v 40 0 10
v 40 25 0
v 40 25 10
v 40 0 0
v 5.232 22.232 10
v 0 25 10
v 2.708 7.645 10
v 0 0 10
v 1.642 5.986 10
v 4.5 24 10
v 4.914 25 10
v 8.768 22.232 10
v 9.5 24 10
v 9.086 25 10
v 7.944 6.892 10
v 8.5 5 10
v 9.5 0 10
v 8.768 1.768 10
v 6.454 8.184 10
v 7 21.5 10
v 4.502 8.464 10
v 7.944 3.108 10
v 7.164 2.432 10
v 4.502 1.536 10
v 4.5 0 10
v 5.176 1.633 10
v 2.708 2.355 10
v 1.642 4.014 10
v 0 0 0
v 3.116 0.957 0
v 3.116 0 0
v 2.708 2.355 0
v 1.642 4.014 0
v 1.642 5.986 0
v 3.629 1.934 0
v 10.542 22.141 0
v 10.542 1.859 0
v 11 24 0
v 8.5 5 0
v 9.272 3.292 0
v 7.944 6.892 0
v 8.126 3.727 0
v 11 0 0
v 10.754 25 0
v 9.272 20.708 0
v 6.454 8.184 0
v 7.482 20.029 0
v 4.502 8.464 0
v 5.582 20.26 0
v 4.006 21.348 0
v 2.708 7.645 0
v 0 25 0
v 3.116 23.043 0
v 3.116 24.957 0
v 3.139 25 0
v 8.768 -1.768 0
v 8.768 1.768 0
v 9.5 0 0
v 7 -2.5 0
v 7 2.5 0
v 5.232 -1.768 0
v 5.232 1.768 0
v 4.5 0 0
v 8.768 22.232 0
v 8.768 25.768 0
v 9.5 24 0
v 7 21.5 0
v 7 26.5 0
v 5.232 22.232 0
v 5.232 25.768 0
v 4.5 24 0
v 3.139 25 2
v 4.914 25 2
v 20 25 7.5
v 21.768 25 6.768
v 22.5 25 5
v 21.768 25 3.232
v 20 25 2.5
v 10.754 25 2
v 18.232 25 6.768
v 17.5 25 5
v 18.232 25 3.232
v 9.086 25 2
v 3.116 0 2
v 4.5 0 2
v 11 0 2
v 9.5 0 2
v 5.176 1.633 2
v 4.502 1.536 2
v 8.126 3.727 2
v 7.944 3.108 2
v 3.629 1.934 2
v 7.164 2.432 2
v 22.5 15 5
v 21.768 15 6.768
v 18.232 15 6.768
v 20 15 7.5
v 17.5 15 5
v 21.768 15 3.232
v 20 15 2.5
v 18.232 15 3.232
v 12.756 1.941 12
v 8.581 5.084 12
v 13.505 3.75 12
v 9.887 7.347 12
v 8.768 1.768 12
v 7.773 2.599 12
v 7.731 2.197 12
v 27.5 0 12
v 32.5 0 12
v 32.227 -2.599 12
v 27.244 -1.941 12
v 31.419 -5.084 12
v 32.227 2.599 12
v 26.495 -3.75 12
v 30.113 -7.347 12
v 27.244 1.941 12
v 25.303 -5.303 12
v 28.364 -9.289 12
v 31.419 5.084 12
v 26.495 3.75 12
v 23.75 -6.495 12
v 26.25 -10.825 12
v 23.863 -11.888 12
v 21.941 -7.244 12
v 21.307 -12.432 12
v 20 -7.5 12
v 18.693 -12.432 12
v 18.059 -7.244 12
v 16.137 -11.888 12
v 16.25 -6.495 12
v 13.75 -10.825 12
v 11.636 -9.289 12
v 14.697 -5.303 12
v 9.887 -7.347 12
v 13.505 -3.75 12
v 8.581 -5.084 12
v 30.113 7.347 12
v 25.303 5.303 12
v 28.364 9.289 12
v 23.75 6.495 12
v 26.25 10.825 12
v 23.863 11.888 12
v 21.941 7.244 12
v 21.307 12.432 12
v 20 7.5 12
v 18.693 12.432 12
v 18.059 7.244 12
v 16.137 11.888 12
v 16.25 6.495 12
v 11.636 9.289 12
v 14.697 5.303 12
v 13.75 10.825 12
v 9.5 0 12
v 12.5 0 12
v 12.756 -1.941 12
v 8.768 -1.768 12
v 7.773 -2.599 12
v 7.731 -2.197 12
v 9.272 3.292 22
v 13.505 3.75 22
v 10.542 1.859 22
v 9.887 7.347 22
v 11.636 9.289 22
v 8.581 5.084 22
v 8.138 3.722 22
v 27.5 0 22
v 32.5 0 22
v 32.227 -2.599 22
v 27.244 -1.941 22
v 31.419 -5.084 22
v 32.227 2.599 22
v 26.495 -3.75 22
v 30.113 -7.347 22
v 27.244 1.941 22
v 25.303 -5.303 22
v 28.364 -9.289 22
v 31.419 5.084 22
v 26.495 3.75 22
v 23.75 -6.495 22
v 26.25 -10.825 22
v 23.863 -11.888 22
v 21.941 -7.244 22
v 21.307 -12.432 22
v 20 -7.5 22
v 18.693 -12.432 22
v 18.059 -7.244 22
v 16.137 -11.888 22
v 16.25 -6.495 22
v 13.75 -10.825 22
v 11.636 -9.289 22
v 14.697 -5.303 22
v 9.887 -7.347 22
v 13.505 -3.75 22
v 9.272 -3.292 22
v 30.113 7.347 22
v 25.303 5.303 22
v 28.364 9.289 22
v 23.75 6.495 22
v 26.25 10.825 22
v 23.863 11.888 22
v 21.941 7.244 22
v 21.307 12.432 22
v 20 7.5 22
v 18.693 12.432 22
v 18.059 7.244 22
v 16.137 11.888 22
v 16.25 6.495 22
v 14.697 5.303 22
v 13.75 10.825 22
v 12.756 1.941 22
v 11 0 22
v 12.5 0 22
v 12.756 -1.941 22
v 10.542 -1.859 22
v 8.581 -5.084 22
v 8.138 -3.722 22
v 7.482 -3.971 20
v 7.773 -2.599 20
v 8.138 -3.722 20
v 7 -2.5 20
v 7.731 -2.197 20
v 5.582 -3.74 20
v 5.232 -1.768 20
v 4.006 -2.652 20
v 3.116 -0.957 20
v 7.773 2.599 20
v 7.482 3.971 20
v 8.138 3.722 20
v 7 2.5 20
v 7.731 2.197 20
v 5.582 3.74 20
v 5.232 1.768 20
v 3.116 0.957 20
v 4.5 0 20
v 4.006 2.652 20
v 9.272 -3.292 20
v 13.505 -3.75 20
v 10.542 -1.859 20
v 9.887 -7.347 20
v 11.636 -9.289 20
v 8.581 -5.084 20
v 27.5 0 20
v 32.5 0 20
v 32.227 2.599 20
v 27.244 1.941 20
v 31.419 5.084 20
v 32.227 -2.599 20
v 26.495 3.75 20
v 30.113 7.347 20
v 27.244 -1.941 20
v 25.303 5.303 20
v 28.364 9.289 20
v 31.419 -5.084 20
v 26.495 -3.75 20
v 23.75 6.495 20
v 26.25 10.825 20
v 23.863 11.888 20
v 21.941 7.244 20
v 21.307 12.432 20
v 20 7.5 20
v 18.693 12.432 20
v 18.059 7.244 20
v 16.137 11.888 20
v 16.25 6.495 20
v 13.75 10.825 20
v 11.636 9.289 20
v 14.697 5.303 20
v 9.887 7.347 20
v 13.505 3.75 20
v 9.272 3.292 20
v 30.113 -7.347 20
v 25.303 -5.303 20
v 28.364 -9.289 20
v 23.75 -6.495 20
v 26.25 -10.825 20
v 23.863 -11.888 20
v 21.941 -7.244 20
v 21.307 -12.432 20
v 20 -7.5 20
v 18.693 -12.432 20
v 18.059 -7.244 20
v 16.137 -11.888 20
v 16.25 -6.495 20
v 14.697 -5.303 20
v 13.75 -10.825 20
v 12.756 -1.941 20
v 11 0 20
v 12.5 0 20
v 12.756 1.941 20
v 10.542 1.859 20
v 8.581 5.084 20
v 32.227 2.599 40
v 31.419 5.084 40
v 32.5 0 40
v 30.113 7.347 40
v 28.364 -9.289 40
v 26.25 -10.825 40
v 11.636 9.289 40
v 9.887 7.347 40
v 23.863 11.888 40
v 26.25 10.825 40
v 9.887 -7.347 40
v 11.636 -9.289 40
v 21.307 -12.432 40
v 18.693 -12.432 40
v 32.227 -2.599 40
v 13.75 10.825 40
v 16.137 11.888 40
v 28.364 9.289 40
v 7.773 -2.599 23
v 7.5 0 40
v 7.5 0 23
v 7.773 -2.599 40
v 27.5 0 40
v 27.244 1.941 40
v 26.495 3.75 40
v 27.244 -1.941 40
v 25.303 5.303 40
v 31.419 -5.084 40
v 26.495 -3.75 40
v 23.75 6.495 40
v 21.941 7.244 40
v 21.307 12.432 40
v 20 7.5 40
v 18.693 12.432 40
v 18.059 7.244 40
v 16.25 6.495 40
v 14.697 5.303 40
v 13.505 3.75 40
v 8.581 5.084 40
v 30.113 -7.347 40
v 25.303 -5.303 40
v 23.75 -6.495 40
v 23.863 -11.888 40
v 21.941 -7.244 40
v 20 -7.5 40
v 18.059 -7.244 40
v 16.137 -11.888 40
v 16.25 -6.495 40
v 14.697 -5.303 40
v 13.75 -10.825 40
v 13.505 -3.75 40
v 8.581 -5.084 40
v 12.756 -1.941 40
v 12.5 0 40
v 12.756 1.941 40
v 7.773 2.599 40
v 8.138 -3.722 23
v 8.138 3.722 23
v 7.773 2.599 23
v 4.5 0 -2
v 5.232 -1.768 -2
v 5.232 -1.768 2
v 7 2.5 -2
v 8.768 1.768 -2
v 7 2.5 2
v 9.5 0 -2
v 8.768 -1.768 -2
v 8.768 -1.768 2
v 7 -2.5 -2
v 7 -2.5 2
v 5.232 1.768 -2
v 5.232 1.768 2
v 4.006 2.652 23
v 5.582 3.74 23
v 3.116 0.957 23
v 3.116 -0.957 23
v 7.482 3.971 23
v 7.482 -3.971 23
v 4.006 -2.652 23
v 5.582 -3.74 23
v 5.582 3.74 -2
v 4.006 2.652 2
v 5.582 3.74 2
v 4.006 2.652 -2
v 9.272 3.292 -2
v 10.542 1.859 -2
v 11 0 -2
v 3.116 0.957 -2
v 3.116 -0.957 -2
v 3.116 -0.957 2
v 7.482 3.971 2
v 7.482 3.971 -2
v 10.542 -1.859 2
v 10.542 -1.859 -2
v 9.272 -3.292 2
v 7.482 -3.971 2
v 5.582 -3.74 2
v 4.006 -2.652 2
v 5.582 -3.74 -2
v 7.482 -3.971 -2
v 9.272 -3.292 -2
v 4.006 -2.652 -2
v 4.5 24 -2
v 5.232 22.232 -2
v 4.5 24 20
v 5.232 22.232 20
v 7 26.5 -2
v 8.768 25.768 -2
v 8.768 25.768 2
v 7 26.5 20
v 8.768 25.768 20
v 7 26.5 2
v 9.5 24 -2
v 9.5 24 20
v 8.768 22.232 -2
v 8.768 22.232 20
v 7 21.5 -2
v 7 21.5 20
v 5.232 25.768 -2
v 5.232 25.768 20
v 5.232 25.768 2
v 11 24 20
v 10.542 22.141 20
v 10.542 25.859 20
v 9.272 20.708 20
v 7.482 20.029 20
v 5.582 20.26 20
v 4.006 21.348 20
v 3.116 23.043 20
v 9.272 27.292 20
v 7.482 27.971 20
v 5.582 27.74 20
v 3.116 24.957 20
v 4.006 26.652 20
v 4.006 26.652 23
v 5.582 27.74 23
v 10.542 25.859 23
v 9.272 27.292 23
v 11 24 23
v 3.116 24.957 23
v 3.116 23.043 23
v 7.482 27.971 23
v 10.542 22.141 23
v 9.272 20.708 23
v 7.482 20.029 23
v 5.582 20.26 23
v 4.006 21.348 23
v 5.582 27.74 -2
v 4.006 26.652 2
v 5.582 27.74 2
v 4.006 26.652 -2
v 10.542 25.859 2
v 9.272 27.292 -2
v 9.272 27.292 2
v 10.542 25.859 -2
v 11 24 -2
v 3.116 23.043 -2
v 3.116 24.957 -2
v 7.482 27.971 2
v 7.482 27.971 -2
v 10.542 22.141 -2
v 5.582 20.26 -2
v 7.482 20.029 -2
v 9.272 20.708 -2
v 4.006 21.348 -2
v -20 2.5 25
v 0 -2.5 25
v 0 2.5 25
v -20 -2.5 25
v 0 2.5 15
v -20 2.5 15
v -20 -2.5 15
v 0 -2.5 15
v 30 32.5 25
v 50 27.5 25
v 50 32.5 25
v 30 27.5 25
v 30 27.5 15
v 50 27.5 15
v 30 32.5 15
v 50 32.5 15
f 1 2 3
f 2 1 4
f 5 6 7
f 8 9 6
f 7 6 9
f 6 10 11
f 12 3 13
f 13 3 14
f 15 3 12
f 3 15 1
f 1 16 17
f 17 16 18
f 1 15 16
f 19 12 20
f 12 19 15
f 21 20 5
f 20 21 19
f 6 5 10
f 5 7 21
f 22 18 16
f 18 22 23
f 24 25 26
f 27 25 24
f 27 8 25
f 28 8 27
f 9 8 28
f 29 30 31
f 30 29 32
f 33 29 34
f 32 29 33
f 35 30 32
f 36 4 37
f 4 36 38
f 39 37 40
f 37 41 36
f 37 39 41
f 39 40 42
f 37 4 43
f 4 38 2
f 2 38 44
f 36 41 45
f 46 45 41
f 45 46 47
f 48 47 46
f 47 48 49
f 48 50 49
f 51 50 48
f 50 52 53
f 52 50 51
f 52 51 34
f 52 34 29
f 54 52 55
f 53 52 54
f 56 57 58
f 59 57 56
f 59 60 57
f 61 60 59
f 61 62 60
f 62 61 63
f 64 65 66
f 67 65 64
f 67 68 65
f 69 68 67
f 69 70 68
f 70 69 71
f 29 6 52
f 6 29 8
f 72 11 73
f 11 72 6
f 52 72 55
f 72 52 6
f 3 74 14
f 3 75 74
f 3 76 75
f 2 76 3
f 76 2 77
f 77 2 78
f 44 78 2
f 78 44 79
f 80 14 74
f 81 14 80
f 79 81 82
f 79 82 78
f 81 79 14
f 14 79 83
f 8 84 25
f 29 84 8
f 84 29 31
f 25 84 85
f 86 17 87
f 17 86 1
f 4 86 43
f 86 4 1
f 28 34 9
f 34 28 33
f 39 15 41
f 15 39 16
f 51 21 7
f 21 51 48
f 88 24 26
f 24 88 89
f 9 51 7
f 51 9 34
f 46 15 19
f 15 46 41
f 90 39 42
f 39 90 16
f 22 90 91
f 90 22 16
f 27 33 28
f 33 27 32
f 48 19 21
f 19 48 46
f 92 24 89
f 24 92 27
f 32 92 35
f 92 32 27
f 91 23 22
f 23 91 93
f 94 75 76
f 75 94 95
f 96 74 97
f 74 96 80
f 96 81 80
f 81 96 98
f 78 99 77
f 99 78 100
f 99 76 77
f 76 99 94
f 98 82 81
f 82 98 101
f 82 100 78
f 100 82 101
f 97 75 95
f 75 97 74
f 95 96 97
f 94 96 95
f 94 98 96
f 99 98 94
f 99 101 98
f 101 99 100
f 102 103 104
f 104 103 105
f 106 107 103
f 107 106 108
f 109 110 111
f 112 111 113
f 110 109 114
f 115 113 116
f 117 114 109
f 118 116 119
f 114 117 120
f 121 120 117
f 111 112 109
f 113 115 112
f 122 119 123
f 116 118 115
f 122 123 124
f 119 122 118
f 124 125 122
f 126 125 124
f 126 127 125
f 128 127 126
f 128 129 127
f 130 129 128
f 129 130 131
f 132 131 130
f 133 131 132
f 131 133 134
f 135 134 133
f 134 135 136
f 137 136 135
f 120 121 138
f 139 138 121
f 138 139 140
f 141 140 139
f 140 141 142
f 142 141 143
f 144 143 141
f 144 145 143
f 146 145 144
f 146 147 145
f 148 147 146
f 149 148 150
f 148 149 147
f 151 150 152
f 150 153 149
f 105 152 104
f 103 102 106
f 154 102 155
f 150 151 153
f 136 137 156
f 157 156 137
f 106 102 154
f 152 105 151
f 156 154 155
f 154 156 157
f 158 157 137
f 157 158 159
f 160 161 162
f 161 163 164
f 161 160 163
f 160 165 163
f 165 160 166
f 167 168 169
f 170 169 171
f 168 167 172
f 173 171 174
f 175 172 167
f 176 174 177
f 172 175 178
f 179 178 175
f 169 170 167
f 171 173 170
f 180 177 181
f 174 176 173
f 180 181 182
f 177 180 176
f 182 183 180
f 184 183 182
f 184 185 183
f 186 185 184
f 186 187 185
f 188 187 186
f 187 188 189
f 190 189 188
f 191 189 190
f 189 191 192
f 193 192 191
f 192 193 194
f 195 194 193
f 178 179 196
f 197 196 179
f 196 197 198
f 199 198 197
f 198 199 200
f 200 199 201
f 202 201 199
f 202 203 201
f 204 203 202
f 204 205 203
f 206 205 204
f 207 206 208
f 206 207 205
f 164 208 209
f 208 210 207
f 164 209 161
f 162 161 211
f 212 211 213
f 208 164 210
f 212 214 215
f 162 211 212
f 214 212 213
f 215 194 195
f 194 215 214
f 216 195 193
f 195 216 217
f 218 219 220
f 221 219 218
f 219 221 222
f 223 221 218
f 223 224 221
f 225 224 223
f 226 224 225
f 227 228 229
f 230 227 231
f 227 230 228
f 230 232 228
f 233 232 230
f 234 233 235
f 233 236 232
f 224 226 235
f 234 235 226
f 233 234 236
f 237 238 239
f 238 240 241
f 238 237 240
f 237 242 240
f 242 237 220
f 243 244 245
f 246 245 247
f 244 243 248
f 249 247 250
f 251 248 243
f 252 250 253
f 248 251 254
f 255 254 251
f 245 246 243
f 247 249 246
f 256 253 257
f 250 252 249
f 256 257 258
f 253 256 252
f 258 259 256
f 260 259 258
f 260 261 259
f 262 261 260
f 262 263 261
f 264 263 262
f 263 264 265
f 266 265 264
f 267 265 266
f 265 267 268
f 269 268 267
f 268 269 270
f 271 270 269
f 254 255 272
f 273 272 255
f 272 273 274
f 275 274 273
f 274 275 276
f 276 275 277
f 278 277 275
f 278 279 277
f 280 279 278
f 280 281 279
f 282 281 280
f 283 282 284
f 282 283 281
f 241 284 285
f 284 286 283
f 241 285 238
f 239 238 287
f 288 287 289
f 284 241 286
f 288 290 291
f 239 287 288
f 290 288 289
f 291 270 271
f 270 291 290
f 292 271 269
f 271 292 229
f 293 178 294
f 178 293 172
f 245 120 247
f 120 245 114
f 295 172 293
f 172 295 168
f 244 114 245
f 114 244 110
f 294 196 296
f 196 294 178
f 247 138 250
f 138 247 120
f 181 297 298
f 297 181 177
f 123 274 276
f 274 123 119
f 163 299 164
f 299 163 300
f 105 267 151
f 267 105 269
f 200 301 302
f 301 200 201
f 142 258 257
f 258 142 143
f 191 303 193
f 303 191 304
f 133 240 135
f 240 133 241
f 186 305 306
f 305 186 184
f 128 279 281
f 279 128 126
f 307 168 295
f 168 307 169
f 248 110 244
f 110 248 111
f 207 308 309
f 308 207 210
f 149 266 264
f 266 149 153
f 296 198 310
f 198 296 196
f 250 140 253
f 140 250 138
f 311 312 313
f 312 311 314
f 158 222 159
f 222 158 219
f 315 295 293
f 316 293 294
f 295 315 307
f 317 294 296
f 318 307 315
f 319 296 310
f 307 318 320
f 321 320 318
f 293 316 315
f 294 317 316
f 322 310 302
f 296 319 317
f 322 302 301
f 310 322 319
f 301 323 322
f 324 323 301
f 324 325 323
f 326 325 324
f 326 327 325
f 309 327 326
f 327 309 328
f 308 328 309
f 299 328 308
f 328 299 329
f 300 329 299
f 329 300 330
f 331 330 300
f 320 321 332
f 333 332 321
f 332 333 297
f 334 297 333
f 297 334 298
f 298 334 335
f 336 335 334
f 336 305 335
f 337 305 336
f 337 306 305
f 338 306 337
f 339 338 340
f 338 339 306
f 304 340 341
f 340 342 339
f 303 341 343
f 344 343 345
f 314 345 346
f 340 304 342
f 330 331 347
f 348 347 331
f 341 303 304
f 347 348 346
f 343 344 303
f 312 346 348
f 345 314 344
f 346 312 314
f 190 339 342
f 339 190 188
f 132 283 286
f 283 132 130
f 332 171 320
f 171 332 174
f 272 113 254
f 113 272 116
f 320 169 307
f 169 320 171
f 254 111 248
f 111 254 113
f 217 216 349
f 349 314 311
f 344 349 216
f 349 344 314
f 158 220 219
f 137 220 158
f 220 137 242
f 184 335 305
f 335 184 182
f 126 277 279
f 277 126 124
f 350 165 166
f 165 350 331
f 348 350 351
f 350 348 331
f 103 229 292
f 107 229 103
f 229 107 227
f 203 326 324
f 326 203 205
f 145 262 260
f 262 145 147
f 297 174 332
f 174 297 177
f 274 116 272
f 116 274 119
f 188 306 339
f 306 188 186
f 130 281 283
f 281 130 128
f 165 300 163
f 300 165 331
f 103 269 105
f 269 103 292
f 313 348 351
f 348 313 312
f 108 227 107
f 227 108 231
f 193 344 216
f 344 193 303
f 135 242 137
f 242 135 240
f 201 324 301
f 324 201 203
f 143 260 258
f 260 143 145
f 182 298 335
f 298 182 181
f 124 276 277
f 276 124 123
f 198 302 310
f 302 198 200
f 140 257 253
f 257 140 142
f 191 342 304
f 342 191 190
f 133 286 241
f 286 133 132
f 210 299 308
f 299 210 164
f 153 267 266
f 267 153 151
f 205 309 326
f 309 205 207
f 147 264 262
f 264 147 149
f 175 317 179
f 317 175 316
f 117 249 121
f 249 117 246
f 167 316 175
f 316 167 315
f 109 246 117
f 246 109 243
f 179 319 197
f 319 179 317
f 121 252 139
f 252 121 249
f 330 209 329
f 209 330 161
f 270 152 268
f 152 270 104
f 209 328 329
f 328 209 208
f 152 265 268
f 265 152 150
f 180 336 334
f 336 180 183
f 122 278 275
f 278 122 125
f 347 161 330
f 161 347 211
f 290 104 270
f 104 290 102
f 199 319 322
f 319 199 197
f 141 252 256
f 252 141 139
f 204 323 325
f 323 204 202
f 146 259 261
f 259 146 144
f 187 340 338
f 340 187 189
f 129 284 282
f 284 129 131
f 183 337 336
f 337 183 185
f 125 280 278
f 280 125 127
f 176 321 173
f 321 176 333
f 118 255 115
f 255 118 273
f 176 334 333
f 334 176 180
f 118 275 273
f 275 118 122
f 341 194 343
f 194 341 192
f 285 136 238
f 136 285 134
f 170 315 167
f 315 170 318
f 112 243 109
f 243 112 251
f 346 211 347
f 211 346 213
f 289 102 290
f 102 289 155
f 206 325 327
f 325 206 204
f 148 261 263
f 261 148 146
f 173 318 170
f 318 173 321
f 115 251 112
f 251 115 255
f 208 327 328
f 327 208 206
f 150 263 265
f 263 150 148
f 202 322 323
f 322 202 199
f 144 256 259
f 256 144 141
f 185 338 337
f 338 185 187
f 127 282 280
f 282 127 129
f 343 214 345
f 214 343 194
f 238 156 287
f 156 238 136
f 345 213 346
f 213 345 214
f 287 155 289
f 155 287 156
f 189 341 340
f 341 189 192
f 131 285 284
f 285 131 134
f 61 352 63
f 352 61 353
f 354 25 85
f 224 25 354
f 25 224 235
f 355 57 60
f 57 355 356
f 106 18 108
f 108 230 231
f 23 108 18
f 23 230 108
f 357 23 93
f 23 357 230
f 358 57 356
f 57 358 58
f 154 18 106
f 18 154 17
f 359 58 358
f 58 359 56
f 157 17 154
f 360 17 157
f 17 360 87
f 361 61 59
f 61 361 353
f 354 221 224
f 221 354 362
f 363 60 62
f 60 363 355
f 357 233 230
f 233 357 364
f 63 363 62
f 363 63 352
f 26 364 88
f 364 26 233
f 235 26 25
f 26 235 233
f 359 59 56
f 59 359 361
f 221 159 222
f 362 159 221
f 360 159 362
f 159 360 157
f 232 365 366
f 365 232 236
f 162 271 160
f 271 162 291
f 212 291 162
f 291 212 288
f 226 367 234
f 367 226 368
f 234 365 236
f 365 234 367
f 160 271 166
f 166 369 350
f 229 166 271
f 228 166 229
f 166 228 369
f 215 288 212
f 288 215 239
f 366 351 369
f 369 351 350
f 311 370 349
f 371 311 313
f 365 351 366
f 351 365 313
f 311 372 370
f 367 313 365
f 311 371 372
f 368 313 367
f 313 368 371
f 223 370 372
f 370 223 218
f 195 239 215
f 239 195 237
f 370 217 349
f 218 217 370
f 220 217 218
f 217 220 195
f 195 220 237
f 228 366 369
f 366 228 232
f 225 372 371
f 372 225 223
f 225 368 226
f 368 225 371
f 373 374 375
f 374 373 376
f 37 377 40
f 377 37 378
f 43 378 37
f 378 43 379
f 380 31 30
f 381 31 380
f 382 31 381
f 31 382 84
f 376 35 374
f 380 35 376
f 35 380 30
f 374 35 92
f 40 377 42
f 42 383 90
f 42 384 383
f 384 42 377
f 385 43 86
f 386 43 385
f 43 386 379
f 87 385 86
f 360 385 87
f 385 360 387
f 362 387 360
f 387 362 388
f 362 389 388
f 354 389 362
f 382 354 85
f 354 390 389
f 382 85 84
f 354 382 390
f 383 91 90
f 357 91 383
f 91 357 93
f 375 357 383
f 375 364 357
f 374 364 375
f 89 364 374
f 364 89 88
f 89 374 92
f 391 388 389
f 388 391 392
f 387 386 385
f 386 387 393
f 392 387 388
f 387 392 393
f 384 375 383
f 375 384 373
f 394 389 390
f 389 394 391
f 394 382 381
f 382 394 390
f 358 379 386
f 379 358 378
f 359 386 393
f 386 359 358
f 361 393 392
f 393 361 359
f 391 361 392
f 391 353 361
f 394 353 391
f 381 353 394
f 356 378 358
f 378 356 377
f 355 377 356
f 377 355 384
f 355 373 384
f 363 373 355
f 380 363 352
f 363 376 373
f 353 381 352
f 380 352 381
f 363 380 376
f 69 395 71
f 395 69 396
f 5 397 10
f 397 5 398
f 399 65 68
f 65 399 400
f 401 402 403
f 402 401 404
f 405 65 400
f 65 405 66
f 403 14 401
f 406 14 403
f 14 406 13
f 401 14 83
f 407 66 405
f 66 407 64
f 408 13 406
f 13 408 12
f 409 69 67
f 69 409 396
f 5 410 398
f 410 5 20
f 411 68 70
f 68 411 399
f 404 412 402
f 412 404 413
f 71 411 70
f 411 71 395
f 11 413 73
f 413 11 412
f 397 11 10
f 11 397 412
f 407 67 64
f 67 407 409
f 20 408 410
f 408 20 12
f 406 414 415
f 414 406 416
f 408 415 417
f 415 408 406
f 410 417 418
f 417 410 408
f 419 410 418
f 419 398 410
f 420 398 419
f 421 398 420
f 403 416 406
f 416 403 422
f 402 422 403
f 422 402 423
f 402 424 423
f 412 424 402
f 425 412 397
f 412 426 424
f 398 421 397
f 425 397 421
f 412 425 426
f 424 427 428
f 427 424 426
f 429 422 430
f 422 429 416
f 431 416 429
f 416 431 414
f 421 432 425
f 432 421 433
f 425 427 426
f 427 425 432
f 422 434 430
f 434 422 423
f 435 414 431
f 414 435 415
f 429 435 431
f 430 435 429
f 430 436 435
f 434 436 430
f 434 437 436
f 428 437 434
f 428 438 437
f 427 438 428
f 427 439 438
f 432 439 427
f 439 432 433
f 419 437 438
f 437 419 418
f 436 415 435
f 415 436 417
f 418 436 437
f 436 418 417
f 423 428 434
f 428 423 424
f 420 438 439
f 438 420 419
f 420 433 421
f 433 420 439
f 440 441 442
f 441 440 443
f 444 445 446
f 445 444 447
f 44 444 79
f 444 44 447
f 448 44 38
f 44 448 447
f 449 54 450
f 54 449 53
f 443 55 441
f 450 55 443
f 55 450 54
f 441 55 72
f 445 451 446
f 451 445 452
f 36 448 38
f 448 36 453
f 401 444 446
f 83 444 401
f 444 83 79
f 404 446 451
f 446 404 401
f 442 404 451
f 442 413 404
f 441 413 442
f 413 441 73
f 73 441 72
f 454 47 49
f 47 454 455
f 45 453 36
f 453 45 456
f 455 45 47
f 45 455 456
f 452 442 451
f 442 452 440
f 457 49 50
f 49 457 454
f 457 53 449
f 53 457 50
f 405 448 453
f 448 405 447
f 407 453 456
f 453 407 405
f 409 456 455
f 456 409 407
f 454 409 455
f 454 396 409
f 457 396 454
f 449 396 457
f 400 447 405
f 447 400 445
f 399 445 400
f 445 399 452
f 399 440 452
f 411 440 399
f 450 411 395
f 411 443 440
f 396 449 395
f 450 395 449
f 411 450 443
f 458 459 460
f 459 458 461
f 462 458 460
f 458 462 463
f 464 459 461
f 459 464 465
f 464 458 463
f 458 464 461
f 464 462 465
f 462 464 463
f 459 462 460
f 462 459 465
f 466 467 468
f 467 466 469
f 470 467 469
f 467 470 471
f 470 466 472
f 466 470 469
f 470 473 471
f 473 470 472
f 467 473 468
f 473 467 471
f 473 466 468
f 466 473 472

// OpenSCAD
// Function to create a bolt
module bolt(length = 20, diameter = 5, head_diameter = 8, head_height = 3) {
    union() {
        cylinder(h = length, d = diameter, center = false);
        translate([0, 0, length])
            cylinder(h = head_height, d = head_diameter, center = false);
    }
}

// Function to create a nut
module nut(diameter = 8, height = 4, thread_diameter = 5) {
    difference() {
        cylinder(h = height, d = diameter, center = false);
        translate([0, 0, -1])
            cylinder(h = height + 2, d = thread_diameter, center = false);
    }
}

// Creating the base block
module base_block() {
    difference() {
        cube([40, 25, 10]);
        translate([5, 5, -1])
            cylinder(h = 12, d = 7, center = false); // Recesses
        translate([20, 25, 5])
            rotate([90, 0, 0])
                cylinder(h = 10, d = 5); // Threaded holes on the sides
    }
}

// Clamp arm left model
module clamp_arm_left() {
    // Just a placeholder shape, to be updated as per the actual dimensions
    translate([0, 12.5, 5])
        rotate([0, 0, 90])
            cube([5, 20, 10]); // Basic block for clamp arm
}

// Clamp arm right is a mirrored version
module clamp_arm_right() {
    mirror([1, 0, 0])
        clamp_arm_left();
}

// Central hollow cylinder
module central_hollow_cylinder() {
    difference() {
        cylinder(h = 30, d = 25);
        translate([0, 0, -1])
            cylinder(h = 32, d = 15); // Hollow center
        for (i = [-10, 0, 10])
            translate([0, 0, i])
                cylinder(h = 2, d = 27); // Circular grooves
    }
}

// Assembly function
module assembly() {
    base_block();

    // Positioning clamp arms and the central cylinder
    translate([0, -15, 10])
        clamp_arm_left();
    translate([30, 15, 10])
        clamp_arm_right();

    translate([20, 0, 10])
        central_hollow_cylinder();
    
    // Bolt and nut placements
    for (i = [0, 1]) {
        translate([7, 12 * i * 2, 0])
            bolt();
        translate([7, 12 * i * 2, -2])
            nut();
    }
}

// Render assembly
assembly();
